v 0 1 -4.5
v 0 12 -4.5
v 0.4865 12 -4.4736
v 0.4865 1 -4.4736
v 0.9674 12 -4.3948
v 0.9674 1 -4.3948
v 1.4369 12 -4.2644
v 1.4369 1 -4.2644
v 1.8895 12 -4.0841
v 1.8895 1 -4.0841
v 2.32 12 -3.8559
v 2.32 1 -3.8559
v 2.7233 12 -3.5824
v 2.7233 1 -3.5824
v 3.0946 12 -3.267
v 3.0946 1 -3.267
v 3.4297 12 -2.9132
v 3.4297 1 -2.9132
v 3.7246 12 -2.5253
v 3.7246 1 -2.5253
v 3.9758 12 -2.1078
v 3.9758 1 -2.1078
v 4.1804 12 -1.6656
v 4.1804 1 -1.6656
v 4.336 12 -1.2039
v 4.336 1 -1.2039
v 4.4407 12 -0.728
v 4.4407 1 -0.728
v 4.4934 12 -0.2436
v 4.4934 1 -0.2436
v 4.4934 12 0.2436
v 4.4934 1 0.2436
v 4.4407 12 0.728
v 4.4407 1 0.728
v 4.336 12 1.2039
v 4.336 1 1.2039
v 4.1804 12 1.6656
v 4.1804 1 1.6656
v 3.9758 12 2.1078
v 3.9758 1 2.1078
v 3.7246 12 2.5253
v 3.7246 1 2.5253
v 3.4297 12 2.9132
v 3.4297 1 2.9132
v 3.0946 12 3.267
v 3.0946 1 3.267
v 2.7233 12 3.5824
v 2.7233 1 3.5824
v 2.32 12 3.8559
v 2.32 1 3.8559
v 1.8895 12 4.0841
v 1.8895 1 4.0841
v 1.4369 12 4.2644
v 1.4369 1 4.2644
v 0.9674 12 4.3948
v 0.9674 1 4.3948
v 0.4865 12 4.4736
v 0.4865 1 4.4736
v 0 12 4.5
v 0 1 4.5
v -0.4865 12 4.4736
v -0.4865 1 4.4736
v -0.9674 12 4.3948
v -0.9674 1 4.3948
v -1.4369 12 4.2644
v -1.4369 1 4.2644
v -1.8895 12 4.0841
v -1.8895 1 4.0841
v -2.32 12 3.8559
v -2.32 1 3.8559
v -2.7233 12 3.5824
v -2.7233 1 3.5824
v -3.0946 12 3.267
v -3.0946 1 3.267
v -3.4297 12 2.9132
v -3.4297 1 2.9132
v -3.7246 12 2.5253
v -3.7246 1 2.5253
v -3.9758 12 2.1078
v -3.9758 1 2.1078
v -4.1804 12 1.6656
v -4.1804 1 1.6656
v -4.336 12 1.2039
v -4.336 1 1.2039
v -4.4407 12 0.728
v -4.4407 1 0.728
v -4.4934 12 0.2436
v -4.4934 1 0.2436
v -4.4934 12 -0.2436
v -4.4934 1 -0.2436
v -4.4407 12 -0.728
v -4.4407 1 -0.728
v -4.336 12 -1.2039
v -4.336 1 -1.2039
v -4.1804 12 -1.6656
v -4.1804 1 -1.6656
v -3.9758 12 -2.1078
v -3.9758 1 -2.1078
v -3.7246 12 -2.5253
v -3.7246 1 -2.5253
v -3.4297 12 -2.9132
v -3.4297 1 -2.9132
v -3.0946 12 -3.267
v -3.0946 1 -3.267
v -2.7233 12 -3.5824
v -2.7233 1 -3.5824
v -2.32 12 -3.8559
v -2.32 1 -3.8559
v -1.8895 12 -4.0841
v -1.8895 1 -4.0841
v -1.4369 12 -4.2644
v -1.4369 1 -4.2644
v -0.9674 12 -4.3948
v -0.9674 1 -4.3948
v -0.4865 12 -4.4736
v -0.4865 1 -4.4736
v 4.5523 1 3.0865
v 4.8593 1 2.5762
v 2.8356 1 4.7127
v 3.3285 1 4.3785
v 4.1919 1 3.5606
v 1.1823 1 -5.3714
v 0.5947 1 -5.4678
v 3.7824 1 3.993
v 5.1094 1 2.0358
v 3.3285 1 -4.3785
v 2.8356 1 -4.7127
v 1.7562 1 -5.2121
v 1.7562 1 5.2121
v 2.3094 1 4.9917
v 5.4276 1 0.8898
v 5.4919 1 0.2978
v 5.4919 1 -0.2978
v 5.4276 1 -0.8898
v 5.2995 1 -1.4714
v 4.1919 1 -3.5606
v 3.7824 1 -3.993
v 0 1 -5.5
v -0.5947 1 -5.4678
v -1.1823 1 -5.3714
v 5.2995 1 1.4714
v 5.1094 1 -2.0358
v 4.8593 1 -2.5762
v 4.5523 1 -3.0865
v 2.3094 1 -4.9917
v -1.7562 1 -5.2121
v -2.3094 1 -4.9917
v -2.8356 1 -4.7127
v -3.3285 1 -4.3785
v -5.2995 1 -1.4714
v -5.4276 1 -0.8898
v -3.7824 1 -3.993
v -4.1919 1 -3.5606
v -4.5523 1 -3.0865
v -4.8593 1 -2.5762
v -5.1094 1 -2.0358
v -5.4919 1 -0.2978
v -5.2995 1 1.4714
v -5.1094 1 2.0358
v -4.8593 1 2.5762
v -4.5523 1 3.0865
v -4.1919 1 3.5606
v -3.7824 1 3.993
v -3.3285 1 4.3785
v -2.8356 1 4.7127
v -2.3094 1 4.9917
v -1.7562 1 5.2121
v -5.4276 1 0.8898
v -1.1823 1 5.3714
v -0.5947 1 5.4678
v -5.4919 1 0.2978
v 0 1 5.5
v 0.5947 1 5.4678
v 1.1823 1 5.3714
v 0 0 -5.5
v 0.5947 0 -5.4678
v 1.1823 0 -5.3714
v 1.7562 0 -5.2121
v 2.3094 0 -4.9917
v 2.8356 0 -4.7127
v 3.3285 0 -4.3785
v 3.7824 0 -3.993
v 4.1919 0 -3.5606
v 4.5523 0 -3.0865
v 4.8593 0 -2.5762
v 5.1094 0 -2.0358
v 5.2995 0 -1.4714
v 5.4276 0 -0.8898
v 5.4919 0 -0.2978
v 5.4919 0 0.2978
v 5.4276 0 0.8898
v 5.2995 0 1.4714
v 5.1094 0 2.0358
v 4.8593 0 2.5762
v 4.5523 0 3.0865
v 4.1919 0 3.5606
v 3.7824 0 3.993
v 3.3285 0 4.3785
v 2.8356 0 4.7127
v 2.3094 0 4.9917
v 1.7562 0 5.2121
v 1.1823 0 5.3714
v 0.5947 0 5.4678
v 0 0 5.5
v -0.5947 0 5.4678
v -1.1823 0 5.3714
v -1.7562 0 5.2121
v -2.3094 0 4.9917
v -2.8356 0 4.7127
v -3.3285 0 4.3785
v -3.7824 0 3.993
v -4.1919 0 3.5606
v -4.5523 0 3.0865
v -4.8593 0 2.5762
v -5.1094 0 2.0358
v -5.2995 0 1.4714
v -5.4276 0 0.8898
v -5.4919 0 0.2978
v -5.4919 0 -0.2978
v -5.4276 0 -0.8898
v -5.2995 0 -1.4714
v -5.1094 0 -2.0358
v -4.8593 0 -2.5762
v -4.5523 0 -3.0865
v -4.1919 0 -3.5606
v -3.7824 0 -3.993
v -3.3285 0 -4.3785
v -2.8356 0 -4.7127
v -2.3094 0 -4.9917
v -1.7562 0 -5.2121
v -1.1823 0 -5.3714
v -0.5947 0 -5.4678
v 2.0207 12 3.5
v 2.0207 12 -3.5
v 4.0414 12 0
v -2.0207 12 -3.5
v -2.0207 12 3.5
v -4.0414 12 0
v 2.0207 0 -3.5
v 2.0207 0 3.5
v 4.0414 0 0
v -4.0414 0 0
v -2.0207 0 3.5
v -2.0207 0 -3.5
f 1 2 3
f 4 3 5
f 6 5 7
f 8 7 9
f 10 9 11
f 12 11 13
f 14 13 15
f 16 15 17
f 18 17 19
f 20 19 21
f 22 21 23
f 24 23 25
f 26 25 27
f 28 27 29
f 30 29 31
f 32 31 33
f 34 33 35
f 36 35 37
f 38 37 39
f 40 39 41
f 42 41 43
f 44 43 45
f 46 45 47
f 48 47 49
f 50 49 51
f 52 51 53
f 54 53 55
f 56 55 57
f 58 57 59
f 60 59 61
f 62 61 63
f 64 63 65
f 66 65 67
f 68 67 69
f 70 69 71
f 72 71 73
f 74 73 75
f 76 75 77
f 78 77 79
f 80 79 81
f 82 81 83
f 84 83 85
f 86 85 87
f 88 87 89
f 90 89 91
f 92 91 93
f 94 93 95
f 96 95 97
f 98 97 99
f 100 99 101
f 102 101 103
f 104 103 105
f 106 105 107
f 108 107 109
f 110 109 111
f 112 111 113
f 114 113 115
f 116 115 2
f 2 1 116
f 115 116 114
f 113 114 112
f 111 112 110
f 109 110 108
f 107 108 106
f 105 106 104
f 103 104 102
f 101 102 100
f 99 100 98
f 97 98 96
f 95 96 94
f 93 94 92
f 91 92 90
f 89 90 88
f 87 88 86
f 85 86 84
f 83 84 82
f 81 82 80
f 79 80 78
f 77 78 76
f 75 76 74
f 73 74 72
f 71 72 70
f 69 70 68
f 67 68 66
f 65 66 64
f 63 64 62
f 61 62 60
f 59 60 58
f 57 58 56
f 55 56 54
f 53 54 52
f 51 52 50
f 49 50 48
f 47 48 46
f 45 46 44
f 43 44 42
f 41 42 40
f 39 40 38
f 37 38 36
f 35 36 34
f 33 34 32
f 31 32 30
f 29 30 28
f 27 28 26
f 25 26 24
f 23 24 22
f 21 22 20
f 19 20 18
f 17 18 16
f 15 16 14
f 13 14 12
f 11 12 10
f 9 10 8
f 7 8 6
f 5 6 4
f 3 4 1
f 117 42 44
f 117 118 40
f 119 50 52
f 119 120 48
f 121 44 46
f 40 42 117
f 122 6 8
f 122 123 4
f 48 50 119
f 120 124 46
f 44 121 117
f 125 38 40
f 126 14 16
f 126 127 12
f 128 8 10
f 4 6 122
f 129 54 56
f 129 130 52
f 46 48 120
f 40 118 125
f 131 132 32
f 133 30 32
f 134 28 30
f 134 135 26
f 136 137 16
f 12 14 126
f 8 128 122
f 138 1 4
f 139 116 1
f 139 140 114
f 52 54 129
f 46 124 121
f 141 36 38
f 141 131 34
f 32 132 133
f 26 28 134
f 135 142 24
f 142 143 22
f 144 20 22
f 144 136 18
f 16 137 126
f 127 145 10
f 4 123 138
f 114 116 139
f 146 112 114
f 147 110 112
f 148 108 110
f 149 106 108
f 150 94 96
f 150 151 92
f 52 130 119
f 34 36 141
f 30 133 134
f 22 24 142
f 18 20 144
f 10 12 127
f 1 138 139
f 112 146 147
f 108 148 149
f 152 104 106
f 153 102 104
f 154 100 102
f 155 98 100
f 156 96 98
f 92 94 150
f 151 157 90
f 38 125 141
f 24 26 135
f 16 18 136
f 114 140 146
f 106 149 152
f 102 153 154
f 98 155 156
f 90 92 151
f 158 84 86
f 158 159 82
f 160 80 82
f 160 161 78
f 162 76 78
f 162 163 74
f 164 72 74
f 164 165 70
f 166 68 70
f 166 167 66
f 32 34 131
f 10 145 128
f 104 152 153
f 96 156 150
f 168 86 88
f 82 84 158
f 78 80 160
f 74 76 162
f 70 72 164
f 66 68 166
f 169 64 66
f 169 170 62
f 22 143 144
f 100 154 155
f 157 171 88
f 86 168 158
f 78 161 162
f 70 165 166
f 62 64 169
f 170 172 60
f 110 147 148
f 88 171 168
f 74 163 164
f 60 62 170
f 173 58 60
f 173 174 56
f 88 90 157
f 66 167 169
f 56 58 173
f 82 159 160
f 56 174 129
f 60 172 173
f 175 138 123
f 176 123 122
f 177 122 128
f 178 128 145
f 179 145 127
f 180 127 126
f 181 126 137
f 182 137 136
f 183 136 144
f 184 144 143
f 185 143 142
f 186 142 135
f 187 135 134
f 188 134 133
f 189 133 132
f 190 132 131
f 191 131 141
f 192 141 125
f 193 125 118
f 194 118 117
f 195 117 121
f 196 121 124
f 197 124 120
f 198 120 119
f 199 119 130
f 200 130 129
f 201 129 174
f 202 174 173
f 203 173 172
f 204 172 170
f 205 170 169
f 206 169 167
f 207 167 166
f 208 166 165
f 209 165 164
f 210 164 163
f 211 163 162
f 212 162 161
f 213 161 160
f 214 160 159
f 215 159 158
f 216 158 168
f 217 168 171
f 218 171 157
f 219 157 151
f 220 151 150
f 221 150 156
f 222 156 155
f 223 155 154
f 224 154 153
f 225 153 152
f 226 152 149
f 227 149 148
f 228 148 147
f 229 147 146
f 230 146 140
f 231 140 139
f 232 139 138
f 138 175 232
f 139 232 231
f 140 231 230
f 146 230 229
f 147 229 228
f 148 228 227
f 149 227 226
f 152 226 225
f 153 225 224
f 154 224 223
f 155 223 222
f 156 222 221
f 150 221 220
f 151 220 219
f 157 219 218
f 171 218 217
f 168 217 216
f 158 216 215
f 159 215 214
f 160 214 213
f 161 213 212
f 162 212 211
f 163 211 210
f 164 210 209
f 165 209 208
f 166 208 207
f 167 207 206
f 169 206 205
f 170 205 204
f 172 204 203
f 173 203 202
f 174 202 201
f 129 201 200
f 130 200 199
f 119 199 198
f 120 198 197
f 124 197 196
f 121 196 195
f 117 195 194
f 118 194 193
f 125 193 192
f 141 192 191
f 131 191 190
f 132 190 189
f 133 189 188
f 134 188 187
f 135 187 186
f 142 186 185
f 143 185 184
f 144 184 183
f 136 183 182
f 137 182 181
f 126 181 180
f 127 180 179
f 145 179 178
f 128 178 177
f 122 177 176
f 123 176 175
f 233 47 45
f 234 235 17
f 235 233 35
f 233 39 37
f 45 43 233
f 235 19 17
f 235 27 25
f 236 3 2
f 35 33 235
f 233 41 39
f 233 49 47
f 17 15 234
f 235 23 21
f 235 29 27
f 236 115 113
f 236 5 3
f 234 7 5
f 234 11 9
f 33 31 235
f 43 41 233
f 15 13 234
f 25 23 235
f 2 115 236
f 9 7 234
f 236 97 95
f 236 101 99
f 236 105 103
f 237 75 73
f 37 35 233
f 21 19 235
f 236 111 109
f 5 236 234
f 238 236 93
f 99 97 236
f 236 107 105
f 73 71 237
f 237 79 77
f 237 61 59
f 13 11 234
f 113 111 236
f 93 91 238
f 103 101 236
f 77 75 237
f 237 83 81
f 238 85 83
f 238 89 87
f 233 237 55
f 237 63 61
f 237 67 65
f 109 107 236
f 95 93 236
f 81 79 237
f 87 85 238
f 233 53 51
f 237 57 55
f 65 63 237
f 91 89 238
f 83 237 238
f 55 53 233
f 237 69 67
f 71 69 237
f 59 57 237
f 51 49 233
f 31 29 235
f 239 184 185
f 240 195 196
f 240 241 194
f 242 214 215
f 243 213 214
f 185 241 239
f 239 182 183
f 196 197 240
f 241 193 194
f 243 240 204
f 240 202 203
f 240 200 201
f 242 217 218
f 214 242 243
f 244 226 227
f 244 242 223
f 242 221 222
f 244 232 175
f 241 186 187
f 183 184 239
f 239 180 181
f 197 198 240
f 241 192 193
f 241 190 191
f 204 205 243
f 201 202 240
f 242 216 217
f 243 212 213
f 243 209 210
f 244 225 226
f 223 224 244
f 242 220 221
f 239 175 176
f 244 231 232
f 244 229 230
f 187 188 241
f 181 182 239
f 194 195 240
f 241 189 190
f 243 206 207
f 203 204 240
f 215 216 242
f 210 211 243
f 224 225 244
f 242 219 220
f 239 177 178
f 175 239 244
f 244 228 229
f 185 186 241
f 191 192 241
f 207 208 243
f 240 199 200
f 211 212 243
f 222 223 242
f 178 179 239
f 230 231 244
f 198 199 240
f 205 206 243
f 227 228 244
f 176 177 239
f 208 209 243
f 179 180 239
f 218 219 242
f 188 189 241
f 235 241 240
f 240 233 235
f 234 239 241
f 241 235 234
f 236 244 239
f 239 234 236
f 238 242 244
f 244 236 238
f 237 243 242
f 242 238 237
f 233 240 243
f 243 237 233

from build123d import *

# Parameters (mm, degrees)
SKETCH2_R           = 4.5
BOSS_EXTRUDE1_DEPTH = 12
SKETCH4_R           = 5.5
SKETCH4_R_2         = 4.5
BOSS_EXTRUDE3_DEPTH = 1


with BuildPart() as part:
    # Sketch2 → Boss-Extrude1 (new body)
    with BuildSketch(Plane(origin=(0, 0, 0), x_dir=(1, 0, 0), z_dir=(0, 1, 0))):
        Circle(SKETCH2_R)
        Polygon((4.041451884, 0), (2.020725942, 3.5), (-2.020725942, 3.5), (-4.041451884, 0), (-2.020725942, -3.5), (2.020725942, -3.5), align=None, mode=Mode.SUBTRACT)
    extrude(amount=BOSS_EXTRUDE1_DEPTH)

    # Sketch4 → Boss-Extrude3 (add)
    with BuildSketch(Plane.XZ):
        Circle(SKETCH4_R)
        Circle(SKETCH4_R_2, mode=Mode.SUBTRACT)
    extrude(amount=-BOSS_EXTRUDE3_DEPTH)


solid = part.part
